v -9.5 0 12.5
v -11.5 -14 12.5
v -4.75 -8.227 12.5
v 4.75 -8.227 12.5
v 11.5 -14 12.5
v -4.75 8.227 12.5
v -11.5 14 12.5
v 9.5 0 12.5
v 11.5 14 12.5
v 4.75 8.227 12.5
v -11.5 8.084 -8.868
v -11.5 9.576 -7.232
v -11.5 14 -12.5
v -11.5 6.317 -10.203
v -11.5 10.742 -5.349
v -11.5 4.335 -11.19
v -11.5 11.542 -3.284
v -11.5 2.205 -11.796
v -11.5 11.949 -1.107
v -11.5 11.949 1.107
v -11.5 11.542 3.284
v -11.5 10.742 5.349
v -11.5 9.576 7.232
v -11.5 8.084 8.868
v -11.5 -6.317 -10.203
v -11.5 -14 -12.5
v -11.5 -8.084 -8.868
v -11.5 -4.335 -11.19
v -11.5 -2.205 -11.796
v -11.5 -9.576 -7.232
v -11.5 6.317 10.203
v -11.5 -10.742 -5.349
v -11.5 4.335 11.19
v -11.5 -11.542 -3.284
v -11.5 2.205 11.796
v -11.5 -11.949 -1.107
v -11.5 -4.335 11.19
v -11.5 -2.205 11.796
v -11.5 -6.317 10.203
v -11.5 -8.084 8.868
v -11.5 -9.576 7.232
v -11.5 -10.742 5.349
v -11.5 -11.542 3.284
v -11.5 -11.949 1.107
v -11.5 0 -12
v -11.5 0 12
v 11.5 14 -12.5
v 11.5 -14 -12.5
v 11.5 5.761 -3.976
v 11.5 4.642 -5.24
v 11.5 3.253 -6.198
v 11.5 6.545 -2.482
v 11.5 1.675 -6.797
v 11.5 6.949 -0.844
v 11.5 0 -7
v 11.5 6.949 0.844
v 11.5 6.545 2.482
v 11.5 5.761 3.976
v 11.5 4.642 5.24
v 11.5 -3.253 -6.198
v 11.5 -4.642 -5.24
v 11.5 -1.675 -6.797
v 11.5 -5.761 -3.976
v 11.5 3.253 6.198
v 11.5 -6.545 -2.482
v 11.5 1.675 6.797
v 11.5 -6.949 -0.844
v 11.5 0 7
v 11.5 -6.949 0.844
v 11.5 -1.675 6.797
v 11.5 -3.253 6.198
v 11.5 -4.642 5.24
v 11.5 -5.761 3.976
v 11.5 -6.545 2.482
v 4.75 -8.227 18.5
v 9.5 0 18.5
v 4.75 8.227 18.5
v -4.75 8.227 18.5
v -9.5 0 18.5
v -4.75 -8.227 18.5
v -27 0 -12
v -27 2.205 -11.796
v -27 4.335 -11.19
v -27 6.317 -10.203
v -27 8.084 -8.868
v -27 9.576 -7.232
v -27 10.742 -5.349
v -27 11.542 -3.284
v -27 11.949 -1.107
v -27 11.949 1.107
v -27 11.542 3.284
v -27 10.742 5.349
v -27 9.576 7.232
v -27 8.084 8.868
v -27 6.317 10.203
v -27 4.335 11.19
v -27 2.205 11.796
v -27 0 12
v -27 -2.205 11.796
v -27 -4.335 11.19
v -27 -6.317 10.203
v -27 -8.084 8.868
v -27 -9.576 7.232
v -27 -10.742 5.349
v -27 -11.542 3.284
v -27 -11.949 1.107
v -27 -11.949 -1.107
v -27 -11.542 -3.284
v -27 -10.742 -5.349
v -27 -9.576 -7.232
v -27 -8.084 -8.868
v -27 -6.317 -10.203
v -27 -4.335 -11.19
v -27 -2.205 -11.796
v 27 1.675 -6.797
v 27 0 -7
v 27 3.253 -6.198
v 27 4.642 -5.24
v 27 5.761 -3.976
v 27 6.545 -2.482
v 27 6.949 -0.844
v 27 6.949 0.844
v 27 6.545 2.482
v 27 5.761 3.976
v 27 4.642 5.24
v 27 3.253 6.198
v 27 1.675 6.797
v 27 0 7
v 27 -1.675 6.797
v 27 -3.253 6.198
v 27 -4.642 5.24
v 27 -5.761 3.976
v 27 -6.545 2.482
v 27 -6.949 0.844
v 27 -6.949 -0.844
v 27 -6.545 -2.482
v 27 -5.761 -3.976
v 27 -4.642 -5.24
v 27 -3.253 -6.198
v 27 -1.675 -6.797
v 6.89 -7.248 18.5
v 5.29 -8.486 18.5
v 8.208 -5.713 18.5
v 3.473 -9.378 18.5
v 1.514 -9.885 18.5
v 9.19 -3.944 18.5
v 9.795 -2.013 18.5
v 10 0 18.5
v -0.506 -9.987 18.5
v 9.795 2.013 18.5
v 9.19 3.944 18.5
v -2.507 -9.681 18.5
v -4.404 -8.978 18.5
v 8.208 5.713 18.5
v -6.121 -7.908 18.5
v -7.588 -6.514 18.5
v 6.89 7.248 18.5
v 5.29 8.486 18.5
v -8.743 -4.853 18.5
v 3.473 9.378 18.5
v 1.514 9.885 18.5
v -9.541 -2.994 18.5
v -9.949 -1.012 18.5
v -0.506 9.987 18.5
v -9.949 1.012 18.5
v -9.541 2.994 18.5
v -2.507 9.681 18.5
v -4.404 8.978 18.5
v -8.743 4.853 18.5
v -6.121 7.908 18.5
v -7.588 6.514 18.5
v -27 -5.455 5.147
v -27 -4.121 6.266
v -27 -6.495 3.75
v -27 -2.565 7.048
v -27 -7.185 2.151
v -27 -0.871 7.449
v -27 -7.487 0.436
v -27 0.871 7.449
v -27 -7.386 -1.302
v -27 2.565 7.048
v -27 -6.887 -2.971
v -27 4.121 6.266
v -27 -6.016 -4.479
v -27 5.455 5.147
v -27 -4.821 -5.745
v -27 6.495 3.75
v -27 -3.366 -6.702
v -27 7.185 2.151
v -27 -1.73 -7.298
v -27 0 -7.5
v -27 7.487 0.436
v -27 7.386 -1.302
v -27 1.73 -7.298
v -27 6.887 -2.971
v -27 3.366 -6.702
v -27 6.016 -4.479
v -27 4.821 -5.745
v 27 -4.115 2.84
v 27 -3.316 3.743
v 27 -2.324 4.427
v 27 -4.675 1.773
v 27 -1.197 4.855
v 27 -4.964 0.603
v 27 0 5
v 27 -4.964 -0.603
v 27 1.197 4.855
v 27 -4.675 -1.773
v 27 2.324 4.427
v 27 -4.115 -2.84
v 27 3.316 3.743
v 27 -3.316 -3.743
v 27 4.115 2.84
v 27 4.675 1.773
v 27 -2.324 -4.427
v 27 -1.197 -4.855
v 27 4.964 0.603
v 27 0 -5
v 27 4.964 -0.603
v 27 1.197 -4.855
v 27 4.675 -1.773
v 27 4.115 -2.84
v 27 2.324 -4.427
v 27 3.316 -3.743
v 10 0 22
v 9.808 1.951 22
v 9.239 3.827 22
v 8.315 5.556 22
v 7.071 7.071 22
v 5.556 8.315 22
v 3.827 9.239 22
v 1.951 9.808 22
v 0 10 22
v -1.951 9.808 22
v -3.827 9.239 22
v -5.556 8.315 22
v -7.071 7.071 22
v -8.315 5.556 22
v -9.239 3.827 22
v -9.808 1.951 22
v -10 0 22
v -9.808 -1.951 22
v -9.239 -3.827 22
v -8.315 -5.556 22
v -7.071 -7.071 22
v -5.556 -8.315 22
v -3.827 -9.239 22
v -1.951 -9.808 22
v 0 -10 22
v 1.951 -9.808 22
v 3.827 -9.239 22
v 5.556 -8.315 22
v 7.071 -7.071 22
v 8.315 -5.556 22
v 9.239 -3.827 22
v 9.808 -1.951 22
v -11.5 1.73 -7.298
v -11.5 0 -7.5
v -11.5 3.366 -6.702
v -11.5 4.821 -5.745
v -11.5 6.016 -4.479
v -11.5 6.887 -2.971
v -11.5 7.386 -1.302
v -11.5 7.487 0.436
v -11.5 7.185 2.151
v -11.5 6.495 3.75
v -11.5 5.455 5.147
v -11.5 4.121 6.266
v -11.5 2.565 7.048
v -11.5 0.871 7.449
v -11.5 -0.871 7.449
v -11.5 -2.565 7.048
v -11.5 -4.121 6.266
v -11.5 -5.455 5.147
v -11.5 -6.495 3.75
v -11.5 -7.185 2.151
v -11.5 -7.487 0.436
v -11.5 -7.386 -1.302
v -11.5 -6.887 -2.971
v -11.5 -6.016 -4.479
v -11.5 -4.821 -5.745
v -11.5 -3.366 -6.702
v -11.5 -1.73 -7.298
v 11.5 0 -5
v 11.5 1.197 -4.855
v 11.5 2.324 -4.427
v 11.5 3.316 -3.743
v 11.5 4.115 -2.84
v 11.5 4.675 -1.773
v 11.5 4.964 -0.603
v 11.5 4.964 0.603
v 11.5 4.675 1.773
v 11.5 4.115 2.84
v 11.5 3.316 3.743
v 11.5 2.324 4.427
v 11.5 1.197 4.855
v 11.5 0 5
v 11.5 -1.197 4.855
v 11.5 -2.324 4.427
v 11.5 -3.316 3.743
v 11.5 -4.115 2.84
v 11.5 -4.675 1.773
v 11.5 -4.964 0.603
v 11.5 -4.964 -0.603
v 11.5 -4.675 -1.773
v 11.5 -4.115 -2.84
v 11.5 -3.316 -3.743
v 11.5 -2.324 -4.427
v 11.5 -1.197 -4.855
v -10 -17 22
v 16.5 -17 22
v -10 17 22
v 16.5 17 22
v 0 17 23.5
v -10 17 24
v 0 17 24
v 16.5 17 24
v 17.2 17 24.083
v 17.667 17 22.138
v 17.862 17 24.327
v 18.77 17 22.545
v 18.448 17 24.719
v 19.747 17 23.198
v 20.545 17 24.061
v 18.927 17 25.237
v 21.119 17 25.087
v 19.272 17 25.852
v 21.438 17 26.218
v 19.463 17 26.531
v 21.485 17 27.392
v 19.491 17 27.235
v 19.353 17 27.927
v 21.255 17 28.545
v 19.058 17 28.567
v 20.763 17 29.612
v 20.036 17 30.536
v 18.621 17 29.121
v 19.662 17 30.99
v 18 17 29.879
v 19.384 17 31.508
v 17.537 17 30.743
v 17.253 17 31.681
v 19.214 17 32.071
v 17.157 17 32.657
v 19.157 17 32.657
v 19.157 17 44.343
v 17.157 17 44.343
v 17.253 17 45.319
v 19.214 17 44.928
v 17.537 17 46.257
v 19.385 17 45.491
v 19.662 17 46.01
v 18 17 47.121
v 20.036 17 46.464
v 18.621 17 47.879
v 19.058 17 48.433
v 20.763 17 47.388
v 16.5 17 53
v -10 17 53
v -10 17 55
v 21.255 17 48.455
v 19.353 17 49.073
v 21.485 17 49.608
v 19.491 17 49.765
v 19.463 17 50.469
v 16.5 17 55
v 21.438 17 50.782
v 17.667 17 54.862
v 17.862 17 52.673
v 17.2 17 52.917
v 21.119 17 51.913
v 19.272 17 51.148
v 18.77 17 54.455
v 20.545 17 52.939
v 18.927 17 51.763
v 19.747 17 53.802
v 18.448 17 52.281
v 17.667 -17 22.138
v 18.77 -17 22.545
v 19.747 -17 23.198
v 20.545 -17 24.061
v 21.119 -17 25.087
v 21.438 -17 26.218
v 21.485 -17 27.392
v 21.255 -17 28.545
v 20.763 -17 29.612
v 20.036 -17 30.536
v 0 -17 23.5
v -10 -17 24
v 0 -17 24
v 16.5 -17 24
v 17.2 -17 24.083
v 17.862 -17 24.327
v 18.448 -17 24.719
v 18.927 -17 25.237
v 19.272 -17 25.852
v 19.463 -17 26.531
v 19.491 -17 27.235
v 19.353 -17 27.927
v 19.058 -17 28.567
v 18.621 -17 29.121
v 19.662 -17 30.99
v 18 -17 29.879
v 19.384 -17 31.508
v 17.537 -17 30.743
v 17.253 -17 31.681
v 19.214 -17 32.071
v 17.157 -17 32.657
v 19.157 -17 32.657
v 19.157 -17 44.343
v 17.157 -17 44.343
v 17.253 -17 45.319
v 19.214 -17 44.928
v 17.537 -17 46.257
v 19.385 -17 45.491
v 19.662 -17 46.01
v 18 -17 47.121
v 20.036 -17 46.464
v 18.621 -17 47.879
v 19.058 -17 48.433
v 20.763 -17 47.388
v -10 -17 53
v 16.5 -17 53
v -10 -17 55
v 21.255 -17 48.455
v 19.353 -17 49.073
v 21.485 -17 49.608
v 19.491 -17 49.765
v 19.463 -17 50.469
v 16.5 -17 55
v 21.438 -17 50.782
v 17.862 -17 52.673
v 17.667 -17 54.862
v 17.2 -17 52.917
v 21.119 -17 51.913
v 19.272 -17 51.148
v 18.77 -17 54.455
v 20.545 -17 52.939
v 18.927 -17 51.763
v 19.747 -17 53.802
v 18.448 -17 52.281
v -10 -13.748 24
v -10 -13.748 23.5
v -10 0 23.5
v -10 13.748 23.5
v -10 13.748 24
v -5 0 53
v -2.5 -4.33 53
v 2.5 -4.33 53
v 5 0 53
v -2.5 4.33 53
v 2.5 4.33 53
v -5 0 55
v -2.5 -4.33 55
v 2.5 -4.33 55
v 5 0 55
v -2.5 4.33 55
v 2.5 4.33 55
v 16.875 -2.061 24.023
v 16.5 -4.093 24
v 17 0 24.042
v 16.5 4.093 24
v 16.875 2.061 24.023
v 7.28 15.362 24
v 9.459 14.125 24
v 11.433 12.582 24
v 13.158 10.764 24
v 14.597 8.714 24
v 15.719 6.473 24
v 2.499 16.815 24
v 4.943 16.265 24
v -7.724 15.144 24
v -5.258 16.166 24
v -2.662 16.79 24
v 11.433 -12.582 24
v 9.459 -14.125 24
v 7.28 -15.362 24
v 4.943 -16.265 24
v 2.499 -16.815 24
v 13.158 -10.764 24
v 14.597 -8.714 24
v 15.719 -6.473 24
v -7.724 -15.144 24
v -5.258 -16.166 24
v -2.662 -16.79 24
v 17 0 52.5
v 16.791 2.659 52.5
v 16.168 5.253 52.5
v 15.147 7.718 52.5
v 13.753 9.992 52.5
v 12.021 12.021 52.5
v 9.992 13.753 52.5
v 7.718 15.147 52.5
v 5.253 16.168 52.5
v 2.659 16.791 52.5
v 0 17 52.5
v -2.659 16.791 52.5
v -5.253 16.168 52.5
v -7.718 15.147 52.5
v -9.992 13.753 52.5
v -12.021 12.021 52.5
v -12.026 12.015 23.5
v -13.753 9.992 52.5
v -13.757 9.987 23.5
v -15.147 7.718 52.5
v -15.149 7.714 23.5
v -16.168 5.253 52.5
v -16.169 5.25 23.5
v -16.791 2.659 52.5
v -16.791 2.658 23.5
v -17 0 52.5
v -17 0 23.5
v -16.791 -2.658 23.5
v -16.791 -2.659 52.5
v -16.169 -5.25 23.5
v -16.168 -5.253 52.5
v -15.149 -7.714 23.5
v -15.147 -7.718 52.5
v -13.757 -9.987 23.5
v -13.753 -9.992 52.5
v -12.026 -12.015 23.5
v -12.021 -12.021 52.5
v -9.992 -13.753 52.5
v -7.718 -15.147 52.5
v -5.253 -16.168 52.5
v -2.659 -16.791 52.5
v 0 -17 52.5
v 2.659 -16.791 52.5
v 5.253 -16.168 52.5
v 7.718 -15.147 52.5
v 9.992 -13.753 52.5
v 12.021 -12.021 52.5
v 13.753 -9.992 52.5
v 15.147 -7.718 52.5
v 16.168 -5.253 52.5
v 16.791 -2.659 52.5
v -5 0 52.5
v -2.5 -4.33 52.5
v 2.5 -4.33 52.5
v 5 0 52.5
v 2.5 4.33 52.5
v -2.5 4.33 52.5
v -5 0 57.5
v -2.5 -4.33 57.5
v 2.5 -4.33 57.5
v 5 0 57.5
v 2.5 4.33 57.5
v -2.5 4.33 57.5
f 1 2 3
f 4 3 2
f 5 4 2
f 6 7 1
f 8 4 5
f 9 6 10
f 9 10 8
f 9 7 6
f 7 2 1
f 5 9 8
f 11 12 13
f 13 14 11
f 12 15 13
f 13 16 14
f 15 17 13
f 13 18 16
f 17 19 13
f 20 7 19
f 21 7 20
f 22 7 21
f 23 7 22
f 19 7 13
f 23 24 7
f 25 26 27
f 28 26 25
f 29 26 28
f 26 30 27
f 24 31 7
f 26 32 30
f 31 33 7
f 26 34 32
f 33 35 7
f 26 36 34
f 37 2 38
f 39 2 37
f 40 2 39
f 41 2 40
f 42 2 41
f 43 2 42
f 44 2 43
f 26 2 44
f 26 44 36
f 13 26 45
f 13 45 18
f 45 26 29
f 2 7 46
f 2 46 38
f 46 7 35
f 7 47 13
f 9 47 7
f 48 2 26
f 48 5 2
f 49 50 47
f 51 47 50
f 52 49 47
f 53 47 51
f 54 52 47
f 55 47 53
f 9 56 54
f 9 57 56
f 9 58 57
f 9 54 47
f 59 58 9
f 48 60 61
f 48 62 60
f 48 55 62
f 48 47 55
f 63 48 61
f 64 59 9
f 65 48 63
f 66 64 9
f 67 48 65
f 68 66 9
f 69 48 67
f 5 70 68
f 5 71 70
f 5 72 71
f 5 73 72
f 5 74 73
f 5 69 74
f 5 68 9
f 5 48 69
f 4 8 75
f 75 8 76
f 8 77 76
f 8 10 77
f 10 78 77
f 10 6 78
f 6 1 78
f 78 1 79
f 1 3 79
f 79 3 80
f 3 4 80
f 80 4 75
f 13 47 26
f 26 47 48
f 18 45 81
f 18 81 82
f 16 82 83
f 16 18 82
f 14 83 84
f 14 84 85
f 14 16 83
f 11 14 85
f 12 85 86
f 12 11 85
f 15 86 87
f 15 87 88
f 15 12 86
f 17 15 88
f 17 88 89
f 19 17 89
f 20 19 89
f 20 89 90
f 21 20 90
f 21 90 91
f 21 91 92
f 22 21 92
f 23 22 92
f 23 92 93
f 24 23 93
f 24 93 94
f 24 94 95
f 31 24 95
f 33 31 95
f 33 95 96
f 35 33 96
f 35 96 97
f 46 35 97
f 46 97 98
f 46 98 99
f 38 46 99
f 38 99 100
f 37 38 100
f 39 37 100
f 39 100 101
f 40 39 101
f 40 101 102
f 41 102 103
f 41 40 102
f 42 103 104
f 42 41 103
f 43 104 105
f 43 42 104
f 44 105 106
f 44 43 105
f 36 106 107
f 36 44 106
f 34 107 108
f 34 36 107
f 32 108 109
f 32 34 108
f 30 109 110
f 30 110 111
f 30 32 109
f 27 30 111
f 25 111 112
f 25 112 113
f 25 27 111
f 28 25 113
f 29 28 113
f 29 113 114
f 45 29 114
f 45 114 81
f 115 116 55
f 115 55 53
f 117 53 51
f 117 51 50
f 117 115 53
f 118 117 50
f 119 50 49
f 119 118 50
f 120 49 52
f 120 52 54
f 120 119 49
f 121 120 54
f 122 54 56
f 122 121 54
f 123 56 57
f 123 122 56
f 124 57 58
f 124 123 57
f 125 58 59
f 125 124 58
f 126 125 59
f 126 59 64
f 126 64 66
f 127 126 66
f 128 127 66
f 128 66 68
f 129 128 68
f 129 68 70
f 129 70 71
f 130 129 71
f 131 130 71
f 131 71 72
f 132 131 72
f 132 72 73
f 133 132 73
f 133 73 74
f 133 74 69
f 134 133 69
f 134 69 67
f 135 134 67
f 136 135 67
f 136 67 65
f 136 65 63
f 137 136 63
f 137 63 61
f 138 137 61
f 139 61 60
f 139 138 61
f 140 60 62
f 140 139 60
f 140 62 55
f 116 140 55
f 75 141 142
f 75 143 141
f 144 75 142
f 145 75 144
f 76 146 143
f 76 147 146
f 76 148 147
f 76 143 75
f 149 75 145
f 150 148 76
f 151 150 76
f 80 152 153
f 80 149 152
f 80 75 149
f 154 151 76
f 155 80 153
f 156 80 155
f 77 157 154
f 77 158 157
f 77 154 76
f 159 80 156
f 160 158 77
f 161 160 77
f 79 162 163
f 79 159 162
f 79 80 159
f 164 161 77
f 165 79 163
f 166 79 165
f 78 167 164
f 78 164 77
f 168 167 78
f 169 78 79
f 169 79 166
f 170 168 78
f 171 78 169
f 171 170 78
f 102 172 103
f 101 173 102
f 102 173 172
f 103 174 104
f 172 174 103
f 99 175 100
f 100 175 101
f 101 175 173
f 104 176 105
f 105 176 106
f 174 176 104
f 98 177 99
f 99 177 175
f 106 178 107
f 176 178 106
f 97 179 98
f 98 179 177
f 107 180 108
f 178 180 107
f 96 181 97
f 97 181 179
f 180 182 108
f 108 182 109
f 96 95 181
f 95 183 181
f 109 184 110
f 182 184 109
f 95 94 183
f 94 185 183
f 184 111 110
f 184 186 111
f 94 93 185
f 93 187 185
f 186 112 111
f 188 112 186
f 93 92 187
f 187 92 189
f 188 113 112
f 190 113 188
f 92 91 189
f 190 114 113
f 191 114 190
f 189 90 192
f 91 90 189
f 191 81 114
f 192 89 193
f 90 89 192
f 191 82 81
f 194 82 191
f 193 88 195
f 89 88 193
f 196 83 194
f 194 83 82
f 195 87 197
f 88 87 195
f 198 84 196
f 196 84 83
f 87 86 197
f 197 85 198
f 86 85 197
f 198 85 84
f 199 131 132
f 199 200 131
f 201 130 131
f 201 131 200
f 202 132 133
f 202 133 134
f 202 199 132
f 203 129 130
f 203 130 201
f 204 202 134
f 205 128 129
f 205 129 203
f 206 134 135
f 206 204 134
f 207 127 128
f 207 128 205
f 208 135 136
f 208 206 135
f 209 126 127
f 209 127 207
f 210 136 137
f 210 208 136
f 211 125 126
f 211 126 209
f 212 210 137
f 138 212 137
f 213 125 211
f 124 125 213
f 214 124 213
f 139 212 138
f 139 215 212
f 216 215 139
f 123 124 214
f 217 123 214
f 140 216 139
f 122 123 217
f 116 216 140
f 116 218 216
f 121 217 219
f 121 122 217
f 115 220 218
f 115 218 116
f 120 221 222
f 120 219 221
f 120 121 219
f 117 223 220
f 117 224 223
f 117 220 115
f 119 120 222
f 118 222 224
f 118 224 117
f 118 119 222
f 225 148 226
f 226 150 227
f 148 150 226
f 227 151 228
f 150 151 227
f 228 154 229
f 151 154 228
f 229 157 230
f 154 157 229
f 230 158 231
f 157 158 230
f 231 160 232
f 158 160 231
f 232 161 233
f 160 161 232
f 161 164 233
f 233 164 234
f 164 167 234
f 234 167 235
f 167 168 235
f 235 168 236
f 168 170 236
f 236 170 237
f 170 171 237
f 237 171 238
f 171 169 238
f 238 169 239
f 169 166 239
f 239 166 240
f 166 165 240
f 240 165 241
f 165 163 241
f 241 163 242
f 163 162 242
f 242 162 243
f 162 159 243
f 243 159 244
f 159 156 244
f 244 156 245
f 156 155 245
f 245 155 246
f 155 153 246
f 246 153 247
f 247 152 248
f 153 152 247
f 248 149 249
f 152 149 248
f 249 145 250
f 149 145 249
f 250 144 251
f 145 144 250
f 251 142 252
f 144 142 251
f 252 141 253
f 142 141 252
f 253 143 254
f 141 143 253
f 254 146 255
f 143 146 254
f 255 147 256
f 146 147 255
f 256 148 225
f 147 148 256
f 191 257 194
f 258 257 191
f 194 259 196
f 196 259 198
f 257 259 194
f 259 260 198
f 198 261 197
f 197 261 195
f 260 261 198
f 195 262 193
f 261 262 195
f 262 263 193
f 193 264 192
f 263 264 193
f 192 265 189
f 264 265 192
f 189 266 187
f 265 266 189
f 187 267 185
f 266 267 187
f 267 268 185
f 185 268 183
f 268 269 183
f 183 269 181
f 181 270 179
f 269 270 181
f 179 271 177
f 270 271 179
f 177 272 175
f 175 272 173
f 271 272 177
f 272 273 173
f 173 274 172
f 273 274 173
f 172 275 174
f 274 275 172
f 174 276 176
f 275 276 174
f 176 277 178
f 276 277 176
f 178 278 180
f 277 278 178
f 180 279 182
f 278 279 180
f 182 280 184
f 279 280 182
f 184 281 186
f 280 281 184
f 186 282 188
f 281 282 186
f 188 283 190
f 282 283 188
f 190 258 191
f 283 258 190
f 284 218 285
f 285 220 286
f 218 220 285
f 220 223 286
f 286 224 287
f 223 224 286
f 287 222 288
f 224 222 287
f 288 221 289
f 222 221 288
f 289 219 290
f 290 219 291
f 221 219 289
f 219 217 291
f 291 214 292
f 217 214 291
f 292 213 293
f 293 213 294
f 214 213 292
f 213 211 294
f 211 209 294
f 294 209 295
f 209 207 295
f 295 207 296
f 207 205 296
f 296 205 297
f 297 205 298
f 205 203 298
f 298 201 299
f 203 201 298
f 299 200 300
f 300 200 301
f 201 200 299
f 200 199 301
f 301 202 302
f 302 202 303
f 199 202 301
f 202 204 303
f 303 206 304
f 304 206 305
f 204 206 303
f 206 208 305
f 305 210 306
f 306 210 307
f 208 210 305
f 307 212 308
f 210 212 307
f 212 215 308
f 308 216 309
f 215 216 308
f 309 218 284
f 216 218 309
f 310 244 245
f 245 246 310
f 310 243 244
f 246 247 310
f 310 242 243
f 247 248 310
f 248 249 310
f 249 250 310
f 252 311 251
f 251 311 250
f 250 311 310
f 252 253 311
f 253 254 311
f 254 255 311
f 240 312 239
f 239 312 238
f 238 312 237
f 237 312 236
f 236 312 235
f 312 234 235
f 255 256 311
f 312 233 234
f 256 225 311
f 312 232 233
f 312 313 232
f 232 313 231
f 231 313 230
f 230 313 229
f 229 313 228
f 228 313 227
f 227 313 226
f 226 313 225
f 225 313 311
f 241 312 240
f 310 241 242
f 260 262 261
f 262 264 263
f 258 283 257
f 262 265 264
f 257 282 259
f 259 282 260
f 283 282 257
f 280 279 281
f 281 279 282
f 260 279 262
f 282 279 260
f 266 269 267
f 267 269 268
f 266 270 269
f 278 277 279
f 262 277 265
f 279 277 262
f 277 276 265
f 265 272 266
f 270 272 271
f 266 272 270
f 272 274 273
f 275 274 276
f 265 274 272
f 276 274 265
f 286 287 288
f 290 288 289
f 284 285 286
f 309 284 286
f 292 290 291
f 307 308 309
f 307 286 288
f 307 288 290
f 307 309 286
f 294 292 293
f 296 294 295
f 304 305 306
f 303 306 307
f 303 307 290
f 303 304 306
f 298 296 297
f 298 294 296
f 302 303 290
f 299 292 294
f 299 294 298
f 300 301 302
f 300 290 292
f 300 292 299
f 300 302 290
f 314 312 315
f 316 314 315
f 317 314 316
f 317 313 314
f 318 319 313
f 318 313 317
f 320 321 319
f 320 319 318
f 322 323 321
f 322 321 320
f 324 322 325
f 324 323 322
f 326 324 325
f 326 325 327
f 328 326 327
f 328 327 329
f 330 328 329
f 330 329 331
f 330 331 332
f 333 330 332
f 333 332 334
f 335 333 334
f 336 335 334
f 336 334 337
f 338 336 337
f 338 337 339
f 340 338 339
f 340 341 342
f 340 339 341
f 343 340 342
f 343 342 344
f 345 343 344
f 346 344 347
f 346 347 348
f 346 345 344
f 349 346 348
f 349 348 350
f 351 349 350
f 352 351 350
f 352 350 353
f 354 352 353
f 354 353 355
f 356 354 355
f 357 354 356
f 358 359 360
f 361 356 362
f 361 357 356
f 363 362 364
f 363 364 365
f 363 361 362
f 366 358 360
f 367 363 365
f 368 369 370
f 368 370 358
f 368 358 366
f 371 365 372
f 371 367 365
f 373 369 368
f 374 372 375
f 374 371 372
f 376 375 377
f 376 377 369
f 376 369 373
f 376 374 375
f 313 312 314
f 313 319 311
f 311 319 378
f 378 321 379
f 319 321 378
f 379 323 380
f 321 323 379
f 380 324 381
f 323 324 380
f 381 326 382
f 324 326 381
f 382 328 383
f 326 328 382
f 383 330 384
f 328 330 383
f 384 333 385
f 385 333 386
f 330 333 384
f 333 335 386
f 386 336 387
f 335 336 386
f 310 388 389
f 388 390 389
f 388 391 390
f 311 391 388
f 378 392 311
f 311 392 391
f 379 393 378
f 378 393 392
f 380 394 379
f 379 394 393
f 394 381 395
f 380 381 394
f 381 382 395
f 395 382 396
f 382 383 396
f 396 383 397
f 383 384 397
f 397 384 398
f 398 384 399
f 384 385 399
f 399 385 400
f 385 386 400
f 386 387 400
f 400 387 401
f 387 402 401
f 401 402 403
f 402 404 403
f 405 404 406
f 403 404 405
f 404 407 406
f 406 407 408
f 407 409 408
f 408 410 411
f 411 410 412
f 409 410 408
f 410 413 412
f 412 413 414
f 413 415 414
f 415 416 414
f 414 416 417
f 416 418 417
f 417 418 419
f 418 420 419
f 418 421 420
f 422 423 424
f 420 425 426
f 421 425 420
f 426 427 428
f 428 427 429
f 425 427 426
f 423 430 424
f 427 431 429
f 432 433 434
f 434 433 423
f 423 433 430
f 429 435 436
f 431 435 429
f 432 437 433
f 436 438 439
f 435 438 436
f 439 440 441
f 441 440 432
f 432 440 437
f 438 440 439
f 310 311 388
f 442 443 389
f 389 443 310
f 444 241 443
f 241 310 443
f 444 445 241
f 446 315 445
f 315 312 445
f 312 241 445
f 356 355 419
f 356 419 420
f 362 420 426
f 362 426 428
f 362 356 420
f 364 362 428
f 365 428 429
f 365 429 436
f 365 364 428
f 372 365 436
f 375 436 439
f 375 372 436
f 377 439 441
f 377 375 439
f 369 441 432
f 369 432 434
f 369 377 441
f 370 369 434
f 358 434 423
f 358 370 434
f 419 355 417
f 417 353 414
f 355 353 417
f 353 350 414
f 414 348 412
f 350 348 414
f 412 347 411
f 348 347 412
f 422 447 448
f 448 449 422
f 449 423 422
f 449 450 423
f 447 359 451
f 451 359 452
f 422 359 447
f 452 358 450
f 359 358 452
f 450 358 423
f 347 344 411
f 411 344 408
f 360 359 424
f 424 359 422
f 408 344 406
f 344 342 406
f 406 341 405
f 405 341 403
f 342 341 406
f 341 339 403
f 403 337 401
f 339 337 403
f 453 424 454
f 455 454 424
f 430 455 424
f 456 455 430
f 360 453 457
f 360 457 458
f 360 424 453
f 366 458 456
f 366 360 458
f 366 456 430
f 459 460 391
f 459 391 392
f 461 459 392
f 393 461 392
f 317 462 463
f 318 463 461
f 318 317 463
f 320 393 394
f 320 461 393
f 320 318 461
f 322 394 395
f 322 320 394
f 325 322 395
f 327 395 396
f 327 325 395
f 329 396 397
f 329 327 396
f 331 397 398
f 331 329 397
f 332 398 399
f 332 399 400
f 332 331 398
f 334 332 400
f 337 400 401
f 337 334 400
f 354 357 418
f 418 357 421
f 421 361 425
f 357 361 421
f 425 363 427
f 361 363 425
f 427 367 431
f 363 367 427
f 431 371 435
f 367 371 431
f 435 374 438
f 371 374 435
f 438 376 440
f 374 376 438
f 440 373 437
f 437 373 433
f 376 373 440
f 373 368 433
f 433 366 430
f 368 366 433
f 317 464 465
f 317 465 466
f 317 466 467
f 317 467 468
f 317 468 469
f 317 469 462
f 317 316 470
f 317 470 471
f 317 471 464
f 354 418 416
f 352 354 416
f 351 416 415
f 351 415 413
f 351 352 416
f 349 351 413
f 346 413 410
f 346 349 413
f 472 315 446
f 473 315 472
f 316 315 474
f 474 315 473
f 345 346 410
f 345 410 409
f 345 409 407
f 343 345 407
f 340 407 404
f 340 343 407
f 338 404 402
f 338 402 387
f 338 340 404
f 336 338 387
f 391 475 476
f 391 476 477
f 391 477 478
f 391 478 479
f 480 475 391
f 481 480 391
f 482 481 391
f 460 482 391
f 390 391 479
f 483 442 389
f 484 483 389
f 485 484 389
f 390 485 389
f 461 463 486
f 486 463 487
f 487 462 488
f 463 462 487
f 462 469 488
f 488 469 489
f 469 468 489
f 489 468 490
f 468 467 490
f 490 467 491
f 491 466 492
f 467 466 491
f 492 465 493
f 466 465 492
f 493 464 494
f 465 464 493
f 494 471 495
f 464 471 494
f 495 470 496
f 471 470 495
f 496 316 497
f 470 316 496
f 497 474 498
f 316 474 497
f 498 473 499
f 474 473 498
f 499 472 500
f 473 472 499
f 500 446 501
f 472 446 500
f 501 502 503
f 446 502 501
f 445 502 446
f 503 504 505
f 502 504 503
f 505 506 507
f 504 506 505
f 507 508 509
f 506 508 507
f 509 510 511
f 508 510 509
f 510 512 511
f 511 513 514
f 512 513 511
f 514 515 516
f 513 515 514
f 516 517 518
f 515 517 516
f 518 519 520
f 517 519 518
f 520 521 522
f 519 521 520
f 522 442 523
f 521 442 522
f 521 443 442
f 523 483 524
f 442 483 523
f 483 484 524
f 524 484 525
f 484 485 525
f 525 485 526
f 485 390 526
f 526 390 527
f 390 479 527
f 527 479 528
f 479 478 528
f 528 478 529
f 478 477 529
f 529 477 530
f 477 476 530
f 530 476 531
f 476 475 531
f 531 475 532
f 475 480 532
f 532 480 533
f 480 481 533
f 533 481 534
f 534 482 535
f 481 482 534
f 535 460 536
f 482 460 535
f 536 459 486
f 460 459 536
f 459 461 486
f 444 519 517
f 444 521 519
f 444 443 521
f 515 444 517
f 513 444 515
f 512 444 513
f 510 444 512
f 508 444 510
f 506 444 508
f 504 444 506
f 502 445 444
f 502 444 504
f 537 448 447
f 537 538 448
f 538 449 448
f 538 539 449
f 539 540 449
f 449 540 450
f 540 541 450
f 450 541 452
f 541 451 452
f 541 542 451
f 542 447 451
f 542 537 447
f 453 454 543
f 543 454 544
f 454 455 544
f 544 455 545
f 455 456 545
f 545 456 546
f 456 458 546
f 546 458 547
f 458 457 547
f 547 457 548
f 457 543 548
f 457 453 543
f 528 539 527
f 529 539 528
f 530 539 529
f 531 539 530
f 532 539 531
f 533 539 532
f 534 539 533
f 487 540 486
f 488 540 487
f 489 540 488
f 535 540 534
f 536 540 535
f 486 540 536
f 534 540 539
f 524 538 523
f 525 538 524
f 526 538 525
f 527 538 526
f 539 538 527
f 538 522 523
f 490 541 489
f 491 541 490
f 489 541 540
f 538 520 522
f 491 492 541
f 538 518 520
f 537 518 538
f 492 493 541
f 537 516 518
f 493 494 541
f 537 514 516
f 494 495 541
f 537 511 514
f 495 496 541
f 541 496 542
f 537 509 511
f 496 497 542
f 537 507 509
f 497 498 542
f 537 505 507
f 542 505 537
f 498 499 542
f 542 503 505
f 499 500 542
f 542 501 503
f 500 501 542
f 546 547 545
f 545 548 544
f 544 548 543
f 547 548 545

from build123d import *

# Parameters (mm, degrees)
PAD004_DEPTH            = 34
CYLINDER001_R           = 5
CYLINDER001_DEPTH       = 16
CYLINDER001_PITCH_ANGLE = 90
CYLINDER003_R           = 7
CYLINDER003_DEPTH       = 16
CYLINDER003_PITCH_ANGLE = 90
CYLINDER002_R           = 7.5
CYLINDER002_DEPTH       = 16
CYLINDER002_PITCH_ANGLE = 90
CYLINDER_R              = 12
CYLINDER_DEPTH          = 16
CYLINDER_PITCH_ANGLE    = 90
BOX_W                   = 23
BOX_H                   = 28
BOX_DEPTH               = 25
PAD_DEPTH               = 6
SKETCH001_R             = 10
PAD001_DEPTH            = 5
SKETCH002_R             = 17
PAD002_DEPTH            = 29
PAD003_DEPTH            = 5


with BuildPart() as pad004:
    # Sketch004 → Pad004 (new body)
    with BuildSketch(Plane.XZ.offset(-17)):
        with BuildLine():
            Line((-10, 55), (16.5, 55))
            ThreePointArc((20.035534, 46.464466), (21.119398, 51.913417), (16.5, 55))
            ThreePointArc((20.035534, 46.464466), (19.385216, 45.491196), (19.156854, 44.343146))
            Line((19.156854, 44.343146), (19.156854, 32.656854))
            ThreePointArc((19.156854, 32.656854), (19.384362, 31.50845), (20.035534, 30.535534))
            ThreePointArc((16.5, 22), (21.119398, 25.086583), (20.035534, 30.535534))
            Line((-10, 22), (16.5, 22))
            Line((-10, 24), (-10, 22))
            Line((-10, 24), (16.5, 24))
            ThreePointArc((16.5, 24), (19.271639, 25.85195), (18.62132, 29.12132))
            ThreePointArc((17.156854, 32.656854), (17.537457, 30.743437), (18.62132, 29.12132))
            Line((17.156854, 44.343146), (17.156854, 32.656854))
            ThreePointArc((18.62132, 47.87868), (17.537457, 46.256563), (17.156854, 44.343146))
            ThreePointArc((18.62132, 47.87868), (19.271639, 51.14805), (16.5, 53))
            Line((-10, 53), (16.5, 53))
            Line((-10, 55), (-10, 53))
        make_face()
    extrude(amount=PAD004_DEPTH)


with BuildPart() as cylinder001:
    # Cylinder001 → Cylinder001 (new body)
    with BuildSketch(Plane.XY):
        Circle(CYLINDER001_R)
    extrude(amount=CYLINDER001_DEPTH)


with BuildPart() as cylinder001_1:
    # Cylinder001 pitch: moved
    add(cylinder001.part.rotate(Axis((0, 0, 0), (0, 1, 0)), CYLINDER001_PITCH_ANGLE))


with BuildPart() as cylinder001_2:
    # Cylinder001 placement: moved
    add(cylinder001_1.part.moved(Location((11, 0, 0))))


with BuildPart() as cut001:
    # Cylinder003 → Cylinder003 (new body)
    with BuildSketch(Plane.XY):
        Circle(CYLINDER003_R)
    extrude(amount=CYLINDER003_DEPTH)


with BuildPart() as cut001_1:
    # Cylinder003 pitch: moved
    add(cut001.part.rotate(Axis((0, 0, 0), (0, 1, 0)), CYLINDER003_PITCH_ANGLE))


with BuildPart() as cut001_2:
    # Cylinder003 placement: moved
    add(cut001_1.part.moved(Location((11, 0, 0))))

    # Cut001: cut Cylinder001
    add(cylinder001_2.part, mode=Mode.SUBTRACT)


with BuildPart() as cylinder002:
    # Cylinder002 → Cylinder002 (new body)
    with BuildSketch(Plane.XY):
        Circle(CYLINDER002_R)
    extrude(amount=CYLINDER002_DEPTH)


with BuildPart() as cylinder002_1:
    # Cylinder002 pitch: moved
    add(cylinder002.part.rotate(Axis((0, 0, 0), (0, 1, 0)), CYLINDER002_PITCH_ANGLE))


with BuildPart() as cylinder002_2:
    # Cylinder002 placement: moved
    add(cylinder002_1.part.moved(Location((-27, 0, 0))))


with BuildPart() as cut:
    # Cylinder → Cylinder (new body)
    with BuildSketch(Plane.XY):
        Circle(CYLINDER_R)
    extrude(amount=CYLINDER_DEPTH)


with BuildPart() as cut_1:
    # Cylinder pitch: moved
    add(cut.part.rotate(Axis((0, 0, 0), (0, 1, 0)), CYLINDER_PITCH_ANGLE))


with BuildPart() as cut_2:
    # Cylinder placement: moved
    add(cut_1.part.moved(Location((-27, 0, 0))))

    # Cut: cut Cylinder002
    add(cylinder002_2.part, mode=Mode.SUBTRACT)


with BuildPart() as fusion002:
    # Box → Box (new body)
    with BuildSketch(Plane(origin=(-11.5, -14, -12.5), x_dir=(1, 0, 0), z_dir=(0, 0, 1))):
        with Locations((11.5, 14)):
            Rectangle(BOX_W, BOX_H)
    extrude(amount=BOX_DEPTH)

    # Fusion: union Cut
    add(cut_2.part)

    # Fusion001: union Cut001
    add(cut001_2.part)

    # Sketch → Pad (new body)
    with BuildSketch(Plane.XY.offset(12.5)):
        Polygon((4.75, 8.227241), (-4.75, 8.227241), (-9.5, 0), (-4.75, -8.227241), (4.75, -8.227241), (9.5, 0), align=None)
    extrude(amount=PAD_DEPTH)

    # Sketch001 → Pad001 (new body)
    with BuildSketch(Plane.XY.offset(18.5)):
        Circle(SKETCH001_R)
    extrude(amount=PAD001_DEPTH)

    # Sketch002 → Pad002 (new body)
    with BuildSketch(Plane.XY.offset(23.5)):
        Circle(SKETCH002_R)
    extrude(amount=PAD002_DEPTH)

    # Sketch003 → Pad003 (new body)
    with BuildSketch(Plane.XY.offset(52.5)):
        Polygon((2.5, 4.330127), (-2.5, 4.330127), (-5, 0), (-2.5, -4.330127), (2.5, -4.330127), (5, 0), align=None)
    extrude(amount=PAD003_DEPTH)

    # Fusion002: union Pad004
    add(pad004.part)


solid = fusion002.part
